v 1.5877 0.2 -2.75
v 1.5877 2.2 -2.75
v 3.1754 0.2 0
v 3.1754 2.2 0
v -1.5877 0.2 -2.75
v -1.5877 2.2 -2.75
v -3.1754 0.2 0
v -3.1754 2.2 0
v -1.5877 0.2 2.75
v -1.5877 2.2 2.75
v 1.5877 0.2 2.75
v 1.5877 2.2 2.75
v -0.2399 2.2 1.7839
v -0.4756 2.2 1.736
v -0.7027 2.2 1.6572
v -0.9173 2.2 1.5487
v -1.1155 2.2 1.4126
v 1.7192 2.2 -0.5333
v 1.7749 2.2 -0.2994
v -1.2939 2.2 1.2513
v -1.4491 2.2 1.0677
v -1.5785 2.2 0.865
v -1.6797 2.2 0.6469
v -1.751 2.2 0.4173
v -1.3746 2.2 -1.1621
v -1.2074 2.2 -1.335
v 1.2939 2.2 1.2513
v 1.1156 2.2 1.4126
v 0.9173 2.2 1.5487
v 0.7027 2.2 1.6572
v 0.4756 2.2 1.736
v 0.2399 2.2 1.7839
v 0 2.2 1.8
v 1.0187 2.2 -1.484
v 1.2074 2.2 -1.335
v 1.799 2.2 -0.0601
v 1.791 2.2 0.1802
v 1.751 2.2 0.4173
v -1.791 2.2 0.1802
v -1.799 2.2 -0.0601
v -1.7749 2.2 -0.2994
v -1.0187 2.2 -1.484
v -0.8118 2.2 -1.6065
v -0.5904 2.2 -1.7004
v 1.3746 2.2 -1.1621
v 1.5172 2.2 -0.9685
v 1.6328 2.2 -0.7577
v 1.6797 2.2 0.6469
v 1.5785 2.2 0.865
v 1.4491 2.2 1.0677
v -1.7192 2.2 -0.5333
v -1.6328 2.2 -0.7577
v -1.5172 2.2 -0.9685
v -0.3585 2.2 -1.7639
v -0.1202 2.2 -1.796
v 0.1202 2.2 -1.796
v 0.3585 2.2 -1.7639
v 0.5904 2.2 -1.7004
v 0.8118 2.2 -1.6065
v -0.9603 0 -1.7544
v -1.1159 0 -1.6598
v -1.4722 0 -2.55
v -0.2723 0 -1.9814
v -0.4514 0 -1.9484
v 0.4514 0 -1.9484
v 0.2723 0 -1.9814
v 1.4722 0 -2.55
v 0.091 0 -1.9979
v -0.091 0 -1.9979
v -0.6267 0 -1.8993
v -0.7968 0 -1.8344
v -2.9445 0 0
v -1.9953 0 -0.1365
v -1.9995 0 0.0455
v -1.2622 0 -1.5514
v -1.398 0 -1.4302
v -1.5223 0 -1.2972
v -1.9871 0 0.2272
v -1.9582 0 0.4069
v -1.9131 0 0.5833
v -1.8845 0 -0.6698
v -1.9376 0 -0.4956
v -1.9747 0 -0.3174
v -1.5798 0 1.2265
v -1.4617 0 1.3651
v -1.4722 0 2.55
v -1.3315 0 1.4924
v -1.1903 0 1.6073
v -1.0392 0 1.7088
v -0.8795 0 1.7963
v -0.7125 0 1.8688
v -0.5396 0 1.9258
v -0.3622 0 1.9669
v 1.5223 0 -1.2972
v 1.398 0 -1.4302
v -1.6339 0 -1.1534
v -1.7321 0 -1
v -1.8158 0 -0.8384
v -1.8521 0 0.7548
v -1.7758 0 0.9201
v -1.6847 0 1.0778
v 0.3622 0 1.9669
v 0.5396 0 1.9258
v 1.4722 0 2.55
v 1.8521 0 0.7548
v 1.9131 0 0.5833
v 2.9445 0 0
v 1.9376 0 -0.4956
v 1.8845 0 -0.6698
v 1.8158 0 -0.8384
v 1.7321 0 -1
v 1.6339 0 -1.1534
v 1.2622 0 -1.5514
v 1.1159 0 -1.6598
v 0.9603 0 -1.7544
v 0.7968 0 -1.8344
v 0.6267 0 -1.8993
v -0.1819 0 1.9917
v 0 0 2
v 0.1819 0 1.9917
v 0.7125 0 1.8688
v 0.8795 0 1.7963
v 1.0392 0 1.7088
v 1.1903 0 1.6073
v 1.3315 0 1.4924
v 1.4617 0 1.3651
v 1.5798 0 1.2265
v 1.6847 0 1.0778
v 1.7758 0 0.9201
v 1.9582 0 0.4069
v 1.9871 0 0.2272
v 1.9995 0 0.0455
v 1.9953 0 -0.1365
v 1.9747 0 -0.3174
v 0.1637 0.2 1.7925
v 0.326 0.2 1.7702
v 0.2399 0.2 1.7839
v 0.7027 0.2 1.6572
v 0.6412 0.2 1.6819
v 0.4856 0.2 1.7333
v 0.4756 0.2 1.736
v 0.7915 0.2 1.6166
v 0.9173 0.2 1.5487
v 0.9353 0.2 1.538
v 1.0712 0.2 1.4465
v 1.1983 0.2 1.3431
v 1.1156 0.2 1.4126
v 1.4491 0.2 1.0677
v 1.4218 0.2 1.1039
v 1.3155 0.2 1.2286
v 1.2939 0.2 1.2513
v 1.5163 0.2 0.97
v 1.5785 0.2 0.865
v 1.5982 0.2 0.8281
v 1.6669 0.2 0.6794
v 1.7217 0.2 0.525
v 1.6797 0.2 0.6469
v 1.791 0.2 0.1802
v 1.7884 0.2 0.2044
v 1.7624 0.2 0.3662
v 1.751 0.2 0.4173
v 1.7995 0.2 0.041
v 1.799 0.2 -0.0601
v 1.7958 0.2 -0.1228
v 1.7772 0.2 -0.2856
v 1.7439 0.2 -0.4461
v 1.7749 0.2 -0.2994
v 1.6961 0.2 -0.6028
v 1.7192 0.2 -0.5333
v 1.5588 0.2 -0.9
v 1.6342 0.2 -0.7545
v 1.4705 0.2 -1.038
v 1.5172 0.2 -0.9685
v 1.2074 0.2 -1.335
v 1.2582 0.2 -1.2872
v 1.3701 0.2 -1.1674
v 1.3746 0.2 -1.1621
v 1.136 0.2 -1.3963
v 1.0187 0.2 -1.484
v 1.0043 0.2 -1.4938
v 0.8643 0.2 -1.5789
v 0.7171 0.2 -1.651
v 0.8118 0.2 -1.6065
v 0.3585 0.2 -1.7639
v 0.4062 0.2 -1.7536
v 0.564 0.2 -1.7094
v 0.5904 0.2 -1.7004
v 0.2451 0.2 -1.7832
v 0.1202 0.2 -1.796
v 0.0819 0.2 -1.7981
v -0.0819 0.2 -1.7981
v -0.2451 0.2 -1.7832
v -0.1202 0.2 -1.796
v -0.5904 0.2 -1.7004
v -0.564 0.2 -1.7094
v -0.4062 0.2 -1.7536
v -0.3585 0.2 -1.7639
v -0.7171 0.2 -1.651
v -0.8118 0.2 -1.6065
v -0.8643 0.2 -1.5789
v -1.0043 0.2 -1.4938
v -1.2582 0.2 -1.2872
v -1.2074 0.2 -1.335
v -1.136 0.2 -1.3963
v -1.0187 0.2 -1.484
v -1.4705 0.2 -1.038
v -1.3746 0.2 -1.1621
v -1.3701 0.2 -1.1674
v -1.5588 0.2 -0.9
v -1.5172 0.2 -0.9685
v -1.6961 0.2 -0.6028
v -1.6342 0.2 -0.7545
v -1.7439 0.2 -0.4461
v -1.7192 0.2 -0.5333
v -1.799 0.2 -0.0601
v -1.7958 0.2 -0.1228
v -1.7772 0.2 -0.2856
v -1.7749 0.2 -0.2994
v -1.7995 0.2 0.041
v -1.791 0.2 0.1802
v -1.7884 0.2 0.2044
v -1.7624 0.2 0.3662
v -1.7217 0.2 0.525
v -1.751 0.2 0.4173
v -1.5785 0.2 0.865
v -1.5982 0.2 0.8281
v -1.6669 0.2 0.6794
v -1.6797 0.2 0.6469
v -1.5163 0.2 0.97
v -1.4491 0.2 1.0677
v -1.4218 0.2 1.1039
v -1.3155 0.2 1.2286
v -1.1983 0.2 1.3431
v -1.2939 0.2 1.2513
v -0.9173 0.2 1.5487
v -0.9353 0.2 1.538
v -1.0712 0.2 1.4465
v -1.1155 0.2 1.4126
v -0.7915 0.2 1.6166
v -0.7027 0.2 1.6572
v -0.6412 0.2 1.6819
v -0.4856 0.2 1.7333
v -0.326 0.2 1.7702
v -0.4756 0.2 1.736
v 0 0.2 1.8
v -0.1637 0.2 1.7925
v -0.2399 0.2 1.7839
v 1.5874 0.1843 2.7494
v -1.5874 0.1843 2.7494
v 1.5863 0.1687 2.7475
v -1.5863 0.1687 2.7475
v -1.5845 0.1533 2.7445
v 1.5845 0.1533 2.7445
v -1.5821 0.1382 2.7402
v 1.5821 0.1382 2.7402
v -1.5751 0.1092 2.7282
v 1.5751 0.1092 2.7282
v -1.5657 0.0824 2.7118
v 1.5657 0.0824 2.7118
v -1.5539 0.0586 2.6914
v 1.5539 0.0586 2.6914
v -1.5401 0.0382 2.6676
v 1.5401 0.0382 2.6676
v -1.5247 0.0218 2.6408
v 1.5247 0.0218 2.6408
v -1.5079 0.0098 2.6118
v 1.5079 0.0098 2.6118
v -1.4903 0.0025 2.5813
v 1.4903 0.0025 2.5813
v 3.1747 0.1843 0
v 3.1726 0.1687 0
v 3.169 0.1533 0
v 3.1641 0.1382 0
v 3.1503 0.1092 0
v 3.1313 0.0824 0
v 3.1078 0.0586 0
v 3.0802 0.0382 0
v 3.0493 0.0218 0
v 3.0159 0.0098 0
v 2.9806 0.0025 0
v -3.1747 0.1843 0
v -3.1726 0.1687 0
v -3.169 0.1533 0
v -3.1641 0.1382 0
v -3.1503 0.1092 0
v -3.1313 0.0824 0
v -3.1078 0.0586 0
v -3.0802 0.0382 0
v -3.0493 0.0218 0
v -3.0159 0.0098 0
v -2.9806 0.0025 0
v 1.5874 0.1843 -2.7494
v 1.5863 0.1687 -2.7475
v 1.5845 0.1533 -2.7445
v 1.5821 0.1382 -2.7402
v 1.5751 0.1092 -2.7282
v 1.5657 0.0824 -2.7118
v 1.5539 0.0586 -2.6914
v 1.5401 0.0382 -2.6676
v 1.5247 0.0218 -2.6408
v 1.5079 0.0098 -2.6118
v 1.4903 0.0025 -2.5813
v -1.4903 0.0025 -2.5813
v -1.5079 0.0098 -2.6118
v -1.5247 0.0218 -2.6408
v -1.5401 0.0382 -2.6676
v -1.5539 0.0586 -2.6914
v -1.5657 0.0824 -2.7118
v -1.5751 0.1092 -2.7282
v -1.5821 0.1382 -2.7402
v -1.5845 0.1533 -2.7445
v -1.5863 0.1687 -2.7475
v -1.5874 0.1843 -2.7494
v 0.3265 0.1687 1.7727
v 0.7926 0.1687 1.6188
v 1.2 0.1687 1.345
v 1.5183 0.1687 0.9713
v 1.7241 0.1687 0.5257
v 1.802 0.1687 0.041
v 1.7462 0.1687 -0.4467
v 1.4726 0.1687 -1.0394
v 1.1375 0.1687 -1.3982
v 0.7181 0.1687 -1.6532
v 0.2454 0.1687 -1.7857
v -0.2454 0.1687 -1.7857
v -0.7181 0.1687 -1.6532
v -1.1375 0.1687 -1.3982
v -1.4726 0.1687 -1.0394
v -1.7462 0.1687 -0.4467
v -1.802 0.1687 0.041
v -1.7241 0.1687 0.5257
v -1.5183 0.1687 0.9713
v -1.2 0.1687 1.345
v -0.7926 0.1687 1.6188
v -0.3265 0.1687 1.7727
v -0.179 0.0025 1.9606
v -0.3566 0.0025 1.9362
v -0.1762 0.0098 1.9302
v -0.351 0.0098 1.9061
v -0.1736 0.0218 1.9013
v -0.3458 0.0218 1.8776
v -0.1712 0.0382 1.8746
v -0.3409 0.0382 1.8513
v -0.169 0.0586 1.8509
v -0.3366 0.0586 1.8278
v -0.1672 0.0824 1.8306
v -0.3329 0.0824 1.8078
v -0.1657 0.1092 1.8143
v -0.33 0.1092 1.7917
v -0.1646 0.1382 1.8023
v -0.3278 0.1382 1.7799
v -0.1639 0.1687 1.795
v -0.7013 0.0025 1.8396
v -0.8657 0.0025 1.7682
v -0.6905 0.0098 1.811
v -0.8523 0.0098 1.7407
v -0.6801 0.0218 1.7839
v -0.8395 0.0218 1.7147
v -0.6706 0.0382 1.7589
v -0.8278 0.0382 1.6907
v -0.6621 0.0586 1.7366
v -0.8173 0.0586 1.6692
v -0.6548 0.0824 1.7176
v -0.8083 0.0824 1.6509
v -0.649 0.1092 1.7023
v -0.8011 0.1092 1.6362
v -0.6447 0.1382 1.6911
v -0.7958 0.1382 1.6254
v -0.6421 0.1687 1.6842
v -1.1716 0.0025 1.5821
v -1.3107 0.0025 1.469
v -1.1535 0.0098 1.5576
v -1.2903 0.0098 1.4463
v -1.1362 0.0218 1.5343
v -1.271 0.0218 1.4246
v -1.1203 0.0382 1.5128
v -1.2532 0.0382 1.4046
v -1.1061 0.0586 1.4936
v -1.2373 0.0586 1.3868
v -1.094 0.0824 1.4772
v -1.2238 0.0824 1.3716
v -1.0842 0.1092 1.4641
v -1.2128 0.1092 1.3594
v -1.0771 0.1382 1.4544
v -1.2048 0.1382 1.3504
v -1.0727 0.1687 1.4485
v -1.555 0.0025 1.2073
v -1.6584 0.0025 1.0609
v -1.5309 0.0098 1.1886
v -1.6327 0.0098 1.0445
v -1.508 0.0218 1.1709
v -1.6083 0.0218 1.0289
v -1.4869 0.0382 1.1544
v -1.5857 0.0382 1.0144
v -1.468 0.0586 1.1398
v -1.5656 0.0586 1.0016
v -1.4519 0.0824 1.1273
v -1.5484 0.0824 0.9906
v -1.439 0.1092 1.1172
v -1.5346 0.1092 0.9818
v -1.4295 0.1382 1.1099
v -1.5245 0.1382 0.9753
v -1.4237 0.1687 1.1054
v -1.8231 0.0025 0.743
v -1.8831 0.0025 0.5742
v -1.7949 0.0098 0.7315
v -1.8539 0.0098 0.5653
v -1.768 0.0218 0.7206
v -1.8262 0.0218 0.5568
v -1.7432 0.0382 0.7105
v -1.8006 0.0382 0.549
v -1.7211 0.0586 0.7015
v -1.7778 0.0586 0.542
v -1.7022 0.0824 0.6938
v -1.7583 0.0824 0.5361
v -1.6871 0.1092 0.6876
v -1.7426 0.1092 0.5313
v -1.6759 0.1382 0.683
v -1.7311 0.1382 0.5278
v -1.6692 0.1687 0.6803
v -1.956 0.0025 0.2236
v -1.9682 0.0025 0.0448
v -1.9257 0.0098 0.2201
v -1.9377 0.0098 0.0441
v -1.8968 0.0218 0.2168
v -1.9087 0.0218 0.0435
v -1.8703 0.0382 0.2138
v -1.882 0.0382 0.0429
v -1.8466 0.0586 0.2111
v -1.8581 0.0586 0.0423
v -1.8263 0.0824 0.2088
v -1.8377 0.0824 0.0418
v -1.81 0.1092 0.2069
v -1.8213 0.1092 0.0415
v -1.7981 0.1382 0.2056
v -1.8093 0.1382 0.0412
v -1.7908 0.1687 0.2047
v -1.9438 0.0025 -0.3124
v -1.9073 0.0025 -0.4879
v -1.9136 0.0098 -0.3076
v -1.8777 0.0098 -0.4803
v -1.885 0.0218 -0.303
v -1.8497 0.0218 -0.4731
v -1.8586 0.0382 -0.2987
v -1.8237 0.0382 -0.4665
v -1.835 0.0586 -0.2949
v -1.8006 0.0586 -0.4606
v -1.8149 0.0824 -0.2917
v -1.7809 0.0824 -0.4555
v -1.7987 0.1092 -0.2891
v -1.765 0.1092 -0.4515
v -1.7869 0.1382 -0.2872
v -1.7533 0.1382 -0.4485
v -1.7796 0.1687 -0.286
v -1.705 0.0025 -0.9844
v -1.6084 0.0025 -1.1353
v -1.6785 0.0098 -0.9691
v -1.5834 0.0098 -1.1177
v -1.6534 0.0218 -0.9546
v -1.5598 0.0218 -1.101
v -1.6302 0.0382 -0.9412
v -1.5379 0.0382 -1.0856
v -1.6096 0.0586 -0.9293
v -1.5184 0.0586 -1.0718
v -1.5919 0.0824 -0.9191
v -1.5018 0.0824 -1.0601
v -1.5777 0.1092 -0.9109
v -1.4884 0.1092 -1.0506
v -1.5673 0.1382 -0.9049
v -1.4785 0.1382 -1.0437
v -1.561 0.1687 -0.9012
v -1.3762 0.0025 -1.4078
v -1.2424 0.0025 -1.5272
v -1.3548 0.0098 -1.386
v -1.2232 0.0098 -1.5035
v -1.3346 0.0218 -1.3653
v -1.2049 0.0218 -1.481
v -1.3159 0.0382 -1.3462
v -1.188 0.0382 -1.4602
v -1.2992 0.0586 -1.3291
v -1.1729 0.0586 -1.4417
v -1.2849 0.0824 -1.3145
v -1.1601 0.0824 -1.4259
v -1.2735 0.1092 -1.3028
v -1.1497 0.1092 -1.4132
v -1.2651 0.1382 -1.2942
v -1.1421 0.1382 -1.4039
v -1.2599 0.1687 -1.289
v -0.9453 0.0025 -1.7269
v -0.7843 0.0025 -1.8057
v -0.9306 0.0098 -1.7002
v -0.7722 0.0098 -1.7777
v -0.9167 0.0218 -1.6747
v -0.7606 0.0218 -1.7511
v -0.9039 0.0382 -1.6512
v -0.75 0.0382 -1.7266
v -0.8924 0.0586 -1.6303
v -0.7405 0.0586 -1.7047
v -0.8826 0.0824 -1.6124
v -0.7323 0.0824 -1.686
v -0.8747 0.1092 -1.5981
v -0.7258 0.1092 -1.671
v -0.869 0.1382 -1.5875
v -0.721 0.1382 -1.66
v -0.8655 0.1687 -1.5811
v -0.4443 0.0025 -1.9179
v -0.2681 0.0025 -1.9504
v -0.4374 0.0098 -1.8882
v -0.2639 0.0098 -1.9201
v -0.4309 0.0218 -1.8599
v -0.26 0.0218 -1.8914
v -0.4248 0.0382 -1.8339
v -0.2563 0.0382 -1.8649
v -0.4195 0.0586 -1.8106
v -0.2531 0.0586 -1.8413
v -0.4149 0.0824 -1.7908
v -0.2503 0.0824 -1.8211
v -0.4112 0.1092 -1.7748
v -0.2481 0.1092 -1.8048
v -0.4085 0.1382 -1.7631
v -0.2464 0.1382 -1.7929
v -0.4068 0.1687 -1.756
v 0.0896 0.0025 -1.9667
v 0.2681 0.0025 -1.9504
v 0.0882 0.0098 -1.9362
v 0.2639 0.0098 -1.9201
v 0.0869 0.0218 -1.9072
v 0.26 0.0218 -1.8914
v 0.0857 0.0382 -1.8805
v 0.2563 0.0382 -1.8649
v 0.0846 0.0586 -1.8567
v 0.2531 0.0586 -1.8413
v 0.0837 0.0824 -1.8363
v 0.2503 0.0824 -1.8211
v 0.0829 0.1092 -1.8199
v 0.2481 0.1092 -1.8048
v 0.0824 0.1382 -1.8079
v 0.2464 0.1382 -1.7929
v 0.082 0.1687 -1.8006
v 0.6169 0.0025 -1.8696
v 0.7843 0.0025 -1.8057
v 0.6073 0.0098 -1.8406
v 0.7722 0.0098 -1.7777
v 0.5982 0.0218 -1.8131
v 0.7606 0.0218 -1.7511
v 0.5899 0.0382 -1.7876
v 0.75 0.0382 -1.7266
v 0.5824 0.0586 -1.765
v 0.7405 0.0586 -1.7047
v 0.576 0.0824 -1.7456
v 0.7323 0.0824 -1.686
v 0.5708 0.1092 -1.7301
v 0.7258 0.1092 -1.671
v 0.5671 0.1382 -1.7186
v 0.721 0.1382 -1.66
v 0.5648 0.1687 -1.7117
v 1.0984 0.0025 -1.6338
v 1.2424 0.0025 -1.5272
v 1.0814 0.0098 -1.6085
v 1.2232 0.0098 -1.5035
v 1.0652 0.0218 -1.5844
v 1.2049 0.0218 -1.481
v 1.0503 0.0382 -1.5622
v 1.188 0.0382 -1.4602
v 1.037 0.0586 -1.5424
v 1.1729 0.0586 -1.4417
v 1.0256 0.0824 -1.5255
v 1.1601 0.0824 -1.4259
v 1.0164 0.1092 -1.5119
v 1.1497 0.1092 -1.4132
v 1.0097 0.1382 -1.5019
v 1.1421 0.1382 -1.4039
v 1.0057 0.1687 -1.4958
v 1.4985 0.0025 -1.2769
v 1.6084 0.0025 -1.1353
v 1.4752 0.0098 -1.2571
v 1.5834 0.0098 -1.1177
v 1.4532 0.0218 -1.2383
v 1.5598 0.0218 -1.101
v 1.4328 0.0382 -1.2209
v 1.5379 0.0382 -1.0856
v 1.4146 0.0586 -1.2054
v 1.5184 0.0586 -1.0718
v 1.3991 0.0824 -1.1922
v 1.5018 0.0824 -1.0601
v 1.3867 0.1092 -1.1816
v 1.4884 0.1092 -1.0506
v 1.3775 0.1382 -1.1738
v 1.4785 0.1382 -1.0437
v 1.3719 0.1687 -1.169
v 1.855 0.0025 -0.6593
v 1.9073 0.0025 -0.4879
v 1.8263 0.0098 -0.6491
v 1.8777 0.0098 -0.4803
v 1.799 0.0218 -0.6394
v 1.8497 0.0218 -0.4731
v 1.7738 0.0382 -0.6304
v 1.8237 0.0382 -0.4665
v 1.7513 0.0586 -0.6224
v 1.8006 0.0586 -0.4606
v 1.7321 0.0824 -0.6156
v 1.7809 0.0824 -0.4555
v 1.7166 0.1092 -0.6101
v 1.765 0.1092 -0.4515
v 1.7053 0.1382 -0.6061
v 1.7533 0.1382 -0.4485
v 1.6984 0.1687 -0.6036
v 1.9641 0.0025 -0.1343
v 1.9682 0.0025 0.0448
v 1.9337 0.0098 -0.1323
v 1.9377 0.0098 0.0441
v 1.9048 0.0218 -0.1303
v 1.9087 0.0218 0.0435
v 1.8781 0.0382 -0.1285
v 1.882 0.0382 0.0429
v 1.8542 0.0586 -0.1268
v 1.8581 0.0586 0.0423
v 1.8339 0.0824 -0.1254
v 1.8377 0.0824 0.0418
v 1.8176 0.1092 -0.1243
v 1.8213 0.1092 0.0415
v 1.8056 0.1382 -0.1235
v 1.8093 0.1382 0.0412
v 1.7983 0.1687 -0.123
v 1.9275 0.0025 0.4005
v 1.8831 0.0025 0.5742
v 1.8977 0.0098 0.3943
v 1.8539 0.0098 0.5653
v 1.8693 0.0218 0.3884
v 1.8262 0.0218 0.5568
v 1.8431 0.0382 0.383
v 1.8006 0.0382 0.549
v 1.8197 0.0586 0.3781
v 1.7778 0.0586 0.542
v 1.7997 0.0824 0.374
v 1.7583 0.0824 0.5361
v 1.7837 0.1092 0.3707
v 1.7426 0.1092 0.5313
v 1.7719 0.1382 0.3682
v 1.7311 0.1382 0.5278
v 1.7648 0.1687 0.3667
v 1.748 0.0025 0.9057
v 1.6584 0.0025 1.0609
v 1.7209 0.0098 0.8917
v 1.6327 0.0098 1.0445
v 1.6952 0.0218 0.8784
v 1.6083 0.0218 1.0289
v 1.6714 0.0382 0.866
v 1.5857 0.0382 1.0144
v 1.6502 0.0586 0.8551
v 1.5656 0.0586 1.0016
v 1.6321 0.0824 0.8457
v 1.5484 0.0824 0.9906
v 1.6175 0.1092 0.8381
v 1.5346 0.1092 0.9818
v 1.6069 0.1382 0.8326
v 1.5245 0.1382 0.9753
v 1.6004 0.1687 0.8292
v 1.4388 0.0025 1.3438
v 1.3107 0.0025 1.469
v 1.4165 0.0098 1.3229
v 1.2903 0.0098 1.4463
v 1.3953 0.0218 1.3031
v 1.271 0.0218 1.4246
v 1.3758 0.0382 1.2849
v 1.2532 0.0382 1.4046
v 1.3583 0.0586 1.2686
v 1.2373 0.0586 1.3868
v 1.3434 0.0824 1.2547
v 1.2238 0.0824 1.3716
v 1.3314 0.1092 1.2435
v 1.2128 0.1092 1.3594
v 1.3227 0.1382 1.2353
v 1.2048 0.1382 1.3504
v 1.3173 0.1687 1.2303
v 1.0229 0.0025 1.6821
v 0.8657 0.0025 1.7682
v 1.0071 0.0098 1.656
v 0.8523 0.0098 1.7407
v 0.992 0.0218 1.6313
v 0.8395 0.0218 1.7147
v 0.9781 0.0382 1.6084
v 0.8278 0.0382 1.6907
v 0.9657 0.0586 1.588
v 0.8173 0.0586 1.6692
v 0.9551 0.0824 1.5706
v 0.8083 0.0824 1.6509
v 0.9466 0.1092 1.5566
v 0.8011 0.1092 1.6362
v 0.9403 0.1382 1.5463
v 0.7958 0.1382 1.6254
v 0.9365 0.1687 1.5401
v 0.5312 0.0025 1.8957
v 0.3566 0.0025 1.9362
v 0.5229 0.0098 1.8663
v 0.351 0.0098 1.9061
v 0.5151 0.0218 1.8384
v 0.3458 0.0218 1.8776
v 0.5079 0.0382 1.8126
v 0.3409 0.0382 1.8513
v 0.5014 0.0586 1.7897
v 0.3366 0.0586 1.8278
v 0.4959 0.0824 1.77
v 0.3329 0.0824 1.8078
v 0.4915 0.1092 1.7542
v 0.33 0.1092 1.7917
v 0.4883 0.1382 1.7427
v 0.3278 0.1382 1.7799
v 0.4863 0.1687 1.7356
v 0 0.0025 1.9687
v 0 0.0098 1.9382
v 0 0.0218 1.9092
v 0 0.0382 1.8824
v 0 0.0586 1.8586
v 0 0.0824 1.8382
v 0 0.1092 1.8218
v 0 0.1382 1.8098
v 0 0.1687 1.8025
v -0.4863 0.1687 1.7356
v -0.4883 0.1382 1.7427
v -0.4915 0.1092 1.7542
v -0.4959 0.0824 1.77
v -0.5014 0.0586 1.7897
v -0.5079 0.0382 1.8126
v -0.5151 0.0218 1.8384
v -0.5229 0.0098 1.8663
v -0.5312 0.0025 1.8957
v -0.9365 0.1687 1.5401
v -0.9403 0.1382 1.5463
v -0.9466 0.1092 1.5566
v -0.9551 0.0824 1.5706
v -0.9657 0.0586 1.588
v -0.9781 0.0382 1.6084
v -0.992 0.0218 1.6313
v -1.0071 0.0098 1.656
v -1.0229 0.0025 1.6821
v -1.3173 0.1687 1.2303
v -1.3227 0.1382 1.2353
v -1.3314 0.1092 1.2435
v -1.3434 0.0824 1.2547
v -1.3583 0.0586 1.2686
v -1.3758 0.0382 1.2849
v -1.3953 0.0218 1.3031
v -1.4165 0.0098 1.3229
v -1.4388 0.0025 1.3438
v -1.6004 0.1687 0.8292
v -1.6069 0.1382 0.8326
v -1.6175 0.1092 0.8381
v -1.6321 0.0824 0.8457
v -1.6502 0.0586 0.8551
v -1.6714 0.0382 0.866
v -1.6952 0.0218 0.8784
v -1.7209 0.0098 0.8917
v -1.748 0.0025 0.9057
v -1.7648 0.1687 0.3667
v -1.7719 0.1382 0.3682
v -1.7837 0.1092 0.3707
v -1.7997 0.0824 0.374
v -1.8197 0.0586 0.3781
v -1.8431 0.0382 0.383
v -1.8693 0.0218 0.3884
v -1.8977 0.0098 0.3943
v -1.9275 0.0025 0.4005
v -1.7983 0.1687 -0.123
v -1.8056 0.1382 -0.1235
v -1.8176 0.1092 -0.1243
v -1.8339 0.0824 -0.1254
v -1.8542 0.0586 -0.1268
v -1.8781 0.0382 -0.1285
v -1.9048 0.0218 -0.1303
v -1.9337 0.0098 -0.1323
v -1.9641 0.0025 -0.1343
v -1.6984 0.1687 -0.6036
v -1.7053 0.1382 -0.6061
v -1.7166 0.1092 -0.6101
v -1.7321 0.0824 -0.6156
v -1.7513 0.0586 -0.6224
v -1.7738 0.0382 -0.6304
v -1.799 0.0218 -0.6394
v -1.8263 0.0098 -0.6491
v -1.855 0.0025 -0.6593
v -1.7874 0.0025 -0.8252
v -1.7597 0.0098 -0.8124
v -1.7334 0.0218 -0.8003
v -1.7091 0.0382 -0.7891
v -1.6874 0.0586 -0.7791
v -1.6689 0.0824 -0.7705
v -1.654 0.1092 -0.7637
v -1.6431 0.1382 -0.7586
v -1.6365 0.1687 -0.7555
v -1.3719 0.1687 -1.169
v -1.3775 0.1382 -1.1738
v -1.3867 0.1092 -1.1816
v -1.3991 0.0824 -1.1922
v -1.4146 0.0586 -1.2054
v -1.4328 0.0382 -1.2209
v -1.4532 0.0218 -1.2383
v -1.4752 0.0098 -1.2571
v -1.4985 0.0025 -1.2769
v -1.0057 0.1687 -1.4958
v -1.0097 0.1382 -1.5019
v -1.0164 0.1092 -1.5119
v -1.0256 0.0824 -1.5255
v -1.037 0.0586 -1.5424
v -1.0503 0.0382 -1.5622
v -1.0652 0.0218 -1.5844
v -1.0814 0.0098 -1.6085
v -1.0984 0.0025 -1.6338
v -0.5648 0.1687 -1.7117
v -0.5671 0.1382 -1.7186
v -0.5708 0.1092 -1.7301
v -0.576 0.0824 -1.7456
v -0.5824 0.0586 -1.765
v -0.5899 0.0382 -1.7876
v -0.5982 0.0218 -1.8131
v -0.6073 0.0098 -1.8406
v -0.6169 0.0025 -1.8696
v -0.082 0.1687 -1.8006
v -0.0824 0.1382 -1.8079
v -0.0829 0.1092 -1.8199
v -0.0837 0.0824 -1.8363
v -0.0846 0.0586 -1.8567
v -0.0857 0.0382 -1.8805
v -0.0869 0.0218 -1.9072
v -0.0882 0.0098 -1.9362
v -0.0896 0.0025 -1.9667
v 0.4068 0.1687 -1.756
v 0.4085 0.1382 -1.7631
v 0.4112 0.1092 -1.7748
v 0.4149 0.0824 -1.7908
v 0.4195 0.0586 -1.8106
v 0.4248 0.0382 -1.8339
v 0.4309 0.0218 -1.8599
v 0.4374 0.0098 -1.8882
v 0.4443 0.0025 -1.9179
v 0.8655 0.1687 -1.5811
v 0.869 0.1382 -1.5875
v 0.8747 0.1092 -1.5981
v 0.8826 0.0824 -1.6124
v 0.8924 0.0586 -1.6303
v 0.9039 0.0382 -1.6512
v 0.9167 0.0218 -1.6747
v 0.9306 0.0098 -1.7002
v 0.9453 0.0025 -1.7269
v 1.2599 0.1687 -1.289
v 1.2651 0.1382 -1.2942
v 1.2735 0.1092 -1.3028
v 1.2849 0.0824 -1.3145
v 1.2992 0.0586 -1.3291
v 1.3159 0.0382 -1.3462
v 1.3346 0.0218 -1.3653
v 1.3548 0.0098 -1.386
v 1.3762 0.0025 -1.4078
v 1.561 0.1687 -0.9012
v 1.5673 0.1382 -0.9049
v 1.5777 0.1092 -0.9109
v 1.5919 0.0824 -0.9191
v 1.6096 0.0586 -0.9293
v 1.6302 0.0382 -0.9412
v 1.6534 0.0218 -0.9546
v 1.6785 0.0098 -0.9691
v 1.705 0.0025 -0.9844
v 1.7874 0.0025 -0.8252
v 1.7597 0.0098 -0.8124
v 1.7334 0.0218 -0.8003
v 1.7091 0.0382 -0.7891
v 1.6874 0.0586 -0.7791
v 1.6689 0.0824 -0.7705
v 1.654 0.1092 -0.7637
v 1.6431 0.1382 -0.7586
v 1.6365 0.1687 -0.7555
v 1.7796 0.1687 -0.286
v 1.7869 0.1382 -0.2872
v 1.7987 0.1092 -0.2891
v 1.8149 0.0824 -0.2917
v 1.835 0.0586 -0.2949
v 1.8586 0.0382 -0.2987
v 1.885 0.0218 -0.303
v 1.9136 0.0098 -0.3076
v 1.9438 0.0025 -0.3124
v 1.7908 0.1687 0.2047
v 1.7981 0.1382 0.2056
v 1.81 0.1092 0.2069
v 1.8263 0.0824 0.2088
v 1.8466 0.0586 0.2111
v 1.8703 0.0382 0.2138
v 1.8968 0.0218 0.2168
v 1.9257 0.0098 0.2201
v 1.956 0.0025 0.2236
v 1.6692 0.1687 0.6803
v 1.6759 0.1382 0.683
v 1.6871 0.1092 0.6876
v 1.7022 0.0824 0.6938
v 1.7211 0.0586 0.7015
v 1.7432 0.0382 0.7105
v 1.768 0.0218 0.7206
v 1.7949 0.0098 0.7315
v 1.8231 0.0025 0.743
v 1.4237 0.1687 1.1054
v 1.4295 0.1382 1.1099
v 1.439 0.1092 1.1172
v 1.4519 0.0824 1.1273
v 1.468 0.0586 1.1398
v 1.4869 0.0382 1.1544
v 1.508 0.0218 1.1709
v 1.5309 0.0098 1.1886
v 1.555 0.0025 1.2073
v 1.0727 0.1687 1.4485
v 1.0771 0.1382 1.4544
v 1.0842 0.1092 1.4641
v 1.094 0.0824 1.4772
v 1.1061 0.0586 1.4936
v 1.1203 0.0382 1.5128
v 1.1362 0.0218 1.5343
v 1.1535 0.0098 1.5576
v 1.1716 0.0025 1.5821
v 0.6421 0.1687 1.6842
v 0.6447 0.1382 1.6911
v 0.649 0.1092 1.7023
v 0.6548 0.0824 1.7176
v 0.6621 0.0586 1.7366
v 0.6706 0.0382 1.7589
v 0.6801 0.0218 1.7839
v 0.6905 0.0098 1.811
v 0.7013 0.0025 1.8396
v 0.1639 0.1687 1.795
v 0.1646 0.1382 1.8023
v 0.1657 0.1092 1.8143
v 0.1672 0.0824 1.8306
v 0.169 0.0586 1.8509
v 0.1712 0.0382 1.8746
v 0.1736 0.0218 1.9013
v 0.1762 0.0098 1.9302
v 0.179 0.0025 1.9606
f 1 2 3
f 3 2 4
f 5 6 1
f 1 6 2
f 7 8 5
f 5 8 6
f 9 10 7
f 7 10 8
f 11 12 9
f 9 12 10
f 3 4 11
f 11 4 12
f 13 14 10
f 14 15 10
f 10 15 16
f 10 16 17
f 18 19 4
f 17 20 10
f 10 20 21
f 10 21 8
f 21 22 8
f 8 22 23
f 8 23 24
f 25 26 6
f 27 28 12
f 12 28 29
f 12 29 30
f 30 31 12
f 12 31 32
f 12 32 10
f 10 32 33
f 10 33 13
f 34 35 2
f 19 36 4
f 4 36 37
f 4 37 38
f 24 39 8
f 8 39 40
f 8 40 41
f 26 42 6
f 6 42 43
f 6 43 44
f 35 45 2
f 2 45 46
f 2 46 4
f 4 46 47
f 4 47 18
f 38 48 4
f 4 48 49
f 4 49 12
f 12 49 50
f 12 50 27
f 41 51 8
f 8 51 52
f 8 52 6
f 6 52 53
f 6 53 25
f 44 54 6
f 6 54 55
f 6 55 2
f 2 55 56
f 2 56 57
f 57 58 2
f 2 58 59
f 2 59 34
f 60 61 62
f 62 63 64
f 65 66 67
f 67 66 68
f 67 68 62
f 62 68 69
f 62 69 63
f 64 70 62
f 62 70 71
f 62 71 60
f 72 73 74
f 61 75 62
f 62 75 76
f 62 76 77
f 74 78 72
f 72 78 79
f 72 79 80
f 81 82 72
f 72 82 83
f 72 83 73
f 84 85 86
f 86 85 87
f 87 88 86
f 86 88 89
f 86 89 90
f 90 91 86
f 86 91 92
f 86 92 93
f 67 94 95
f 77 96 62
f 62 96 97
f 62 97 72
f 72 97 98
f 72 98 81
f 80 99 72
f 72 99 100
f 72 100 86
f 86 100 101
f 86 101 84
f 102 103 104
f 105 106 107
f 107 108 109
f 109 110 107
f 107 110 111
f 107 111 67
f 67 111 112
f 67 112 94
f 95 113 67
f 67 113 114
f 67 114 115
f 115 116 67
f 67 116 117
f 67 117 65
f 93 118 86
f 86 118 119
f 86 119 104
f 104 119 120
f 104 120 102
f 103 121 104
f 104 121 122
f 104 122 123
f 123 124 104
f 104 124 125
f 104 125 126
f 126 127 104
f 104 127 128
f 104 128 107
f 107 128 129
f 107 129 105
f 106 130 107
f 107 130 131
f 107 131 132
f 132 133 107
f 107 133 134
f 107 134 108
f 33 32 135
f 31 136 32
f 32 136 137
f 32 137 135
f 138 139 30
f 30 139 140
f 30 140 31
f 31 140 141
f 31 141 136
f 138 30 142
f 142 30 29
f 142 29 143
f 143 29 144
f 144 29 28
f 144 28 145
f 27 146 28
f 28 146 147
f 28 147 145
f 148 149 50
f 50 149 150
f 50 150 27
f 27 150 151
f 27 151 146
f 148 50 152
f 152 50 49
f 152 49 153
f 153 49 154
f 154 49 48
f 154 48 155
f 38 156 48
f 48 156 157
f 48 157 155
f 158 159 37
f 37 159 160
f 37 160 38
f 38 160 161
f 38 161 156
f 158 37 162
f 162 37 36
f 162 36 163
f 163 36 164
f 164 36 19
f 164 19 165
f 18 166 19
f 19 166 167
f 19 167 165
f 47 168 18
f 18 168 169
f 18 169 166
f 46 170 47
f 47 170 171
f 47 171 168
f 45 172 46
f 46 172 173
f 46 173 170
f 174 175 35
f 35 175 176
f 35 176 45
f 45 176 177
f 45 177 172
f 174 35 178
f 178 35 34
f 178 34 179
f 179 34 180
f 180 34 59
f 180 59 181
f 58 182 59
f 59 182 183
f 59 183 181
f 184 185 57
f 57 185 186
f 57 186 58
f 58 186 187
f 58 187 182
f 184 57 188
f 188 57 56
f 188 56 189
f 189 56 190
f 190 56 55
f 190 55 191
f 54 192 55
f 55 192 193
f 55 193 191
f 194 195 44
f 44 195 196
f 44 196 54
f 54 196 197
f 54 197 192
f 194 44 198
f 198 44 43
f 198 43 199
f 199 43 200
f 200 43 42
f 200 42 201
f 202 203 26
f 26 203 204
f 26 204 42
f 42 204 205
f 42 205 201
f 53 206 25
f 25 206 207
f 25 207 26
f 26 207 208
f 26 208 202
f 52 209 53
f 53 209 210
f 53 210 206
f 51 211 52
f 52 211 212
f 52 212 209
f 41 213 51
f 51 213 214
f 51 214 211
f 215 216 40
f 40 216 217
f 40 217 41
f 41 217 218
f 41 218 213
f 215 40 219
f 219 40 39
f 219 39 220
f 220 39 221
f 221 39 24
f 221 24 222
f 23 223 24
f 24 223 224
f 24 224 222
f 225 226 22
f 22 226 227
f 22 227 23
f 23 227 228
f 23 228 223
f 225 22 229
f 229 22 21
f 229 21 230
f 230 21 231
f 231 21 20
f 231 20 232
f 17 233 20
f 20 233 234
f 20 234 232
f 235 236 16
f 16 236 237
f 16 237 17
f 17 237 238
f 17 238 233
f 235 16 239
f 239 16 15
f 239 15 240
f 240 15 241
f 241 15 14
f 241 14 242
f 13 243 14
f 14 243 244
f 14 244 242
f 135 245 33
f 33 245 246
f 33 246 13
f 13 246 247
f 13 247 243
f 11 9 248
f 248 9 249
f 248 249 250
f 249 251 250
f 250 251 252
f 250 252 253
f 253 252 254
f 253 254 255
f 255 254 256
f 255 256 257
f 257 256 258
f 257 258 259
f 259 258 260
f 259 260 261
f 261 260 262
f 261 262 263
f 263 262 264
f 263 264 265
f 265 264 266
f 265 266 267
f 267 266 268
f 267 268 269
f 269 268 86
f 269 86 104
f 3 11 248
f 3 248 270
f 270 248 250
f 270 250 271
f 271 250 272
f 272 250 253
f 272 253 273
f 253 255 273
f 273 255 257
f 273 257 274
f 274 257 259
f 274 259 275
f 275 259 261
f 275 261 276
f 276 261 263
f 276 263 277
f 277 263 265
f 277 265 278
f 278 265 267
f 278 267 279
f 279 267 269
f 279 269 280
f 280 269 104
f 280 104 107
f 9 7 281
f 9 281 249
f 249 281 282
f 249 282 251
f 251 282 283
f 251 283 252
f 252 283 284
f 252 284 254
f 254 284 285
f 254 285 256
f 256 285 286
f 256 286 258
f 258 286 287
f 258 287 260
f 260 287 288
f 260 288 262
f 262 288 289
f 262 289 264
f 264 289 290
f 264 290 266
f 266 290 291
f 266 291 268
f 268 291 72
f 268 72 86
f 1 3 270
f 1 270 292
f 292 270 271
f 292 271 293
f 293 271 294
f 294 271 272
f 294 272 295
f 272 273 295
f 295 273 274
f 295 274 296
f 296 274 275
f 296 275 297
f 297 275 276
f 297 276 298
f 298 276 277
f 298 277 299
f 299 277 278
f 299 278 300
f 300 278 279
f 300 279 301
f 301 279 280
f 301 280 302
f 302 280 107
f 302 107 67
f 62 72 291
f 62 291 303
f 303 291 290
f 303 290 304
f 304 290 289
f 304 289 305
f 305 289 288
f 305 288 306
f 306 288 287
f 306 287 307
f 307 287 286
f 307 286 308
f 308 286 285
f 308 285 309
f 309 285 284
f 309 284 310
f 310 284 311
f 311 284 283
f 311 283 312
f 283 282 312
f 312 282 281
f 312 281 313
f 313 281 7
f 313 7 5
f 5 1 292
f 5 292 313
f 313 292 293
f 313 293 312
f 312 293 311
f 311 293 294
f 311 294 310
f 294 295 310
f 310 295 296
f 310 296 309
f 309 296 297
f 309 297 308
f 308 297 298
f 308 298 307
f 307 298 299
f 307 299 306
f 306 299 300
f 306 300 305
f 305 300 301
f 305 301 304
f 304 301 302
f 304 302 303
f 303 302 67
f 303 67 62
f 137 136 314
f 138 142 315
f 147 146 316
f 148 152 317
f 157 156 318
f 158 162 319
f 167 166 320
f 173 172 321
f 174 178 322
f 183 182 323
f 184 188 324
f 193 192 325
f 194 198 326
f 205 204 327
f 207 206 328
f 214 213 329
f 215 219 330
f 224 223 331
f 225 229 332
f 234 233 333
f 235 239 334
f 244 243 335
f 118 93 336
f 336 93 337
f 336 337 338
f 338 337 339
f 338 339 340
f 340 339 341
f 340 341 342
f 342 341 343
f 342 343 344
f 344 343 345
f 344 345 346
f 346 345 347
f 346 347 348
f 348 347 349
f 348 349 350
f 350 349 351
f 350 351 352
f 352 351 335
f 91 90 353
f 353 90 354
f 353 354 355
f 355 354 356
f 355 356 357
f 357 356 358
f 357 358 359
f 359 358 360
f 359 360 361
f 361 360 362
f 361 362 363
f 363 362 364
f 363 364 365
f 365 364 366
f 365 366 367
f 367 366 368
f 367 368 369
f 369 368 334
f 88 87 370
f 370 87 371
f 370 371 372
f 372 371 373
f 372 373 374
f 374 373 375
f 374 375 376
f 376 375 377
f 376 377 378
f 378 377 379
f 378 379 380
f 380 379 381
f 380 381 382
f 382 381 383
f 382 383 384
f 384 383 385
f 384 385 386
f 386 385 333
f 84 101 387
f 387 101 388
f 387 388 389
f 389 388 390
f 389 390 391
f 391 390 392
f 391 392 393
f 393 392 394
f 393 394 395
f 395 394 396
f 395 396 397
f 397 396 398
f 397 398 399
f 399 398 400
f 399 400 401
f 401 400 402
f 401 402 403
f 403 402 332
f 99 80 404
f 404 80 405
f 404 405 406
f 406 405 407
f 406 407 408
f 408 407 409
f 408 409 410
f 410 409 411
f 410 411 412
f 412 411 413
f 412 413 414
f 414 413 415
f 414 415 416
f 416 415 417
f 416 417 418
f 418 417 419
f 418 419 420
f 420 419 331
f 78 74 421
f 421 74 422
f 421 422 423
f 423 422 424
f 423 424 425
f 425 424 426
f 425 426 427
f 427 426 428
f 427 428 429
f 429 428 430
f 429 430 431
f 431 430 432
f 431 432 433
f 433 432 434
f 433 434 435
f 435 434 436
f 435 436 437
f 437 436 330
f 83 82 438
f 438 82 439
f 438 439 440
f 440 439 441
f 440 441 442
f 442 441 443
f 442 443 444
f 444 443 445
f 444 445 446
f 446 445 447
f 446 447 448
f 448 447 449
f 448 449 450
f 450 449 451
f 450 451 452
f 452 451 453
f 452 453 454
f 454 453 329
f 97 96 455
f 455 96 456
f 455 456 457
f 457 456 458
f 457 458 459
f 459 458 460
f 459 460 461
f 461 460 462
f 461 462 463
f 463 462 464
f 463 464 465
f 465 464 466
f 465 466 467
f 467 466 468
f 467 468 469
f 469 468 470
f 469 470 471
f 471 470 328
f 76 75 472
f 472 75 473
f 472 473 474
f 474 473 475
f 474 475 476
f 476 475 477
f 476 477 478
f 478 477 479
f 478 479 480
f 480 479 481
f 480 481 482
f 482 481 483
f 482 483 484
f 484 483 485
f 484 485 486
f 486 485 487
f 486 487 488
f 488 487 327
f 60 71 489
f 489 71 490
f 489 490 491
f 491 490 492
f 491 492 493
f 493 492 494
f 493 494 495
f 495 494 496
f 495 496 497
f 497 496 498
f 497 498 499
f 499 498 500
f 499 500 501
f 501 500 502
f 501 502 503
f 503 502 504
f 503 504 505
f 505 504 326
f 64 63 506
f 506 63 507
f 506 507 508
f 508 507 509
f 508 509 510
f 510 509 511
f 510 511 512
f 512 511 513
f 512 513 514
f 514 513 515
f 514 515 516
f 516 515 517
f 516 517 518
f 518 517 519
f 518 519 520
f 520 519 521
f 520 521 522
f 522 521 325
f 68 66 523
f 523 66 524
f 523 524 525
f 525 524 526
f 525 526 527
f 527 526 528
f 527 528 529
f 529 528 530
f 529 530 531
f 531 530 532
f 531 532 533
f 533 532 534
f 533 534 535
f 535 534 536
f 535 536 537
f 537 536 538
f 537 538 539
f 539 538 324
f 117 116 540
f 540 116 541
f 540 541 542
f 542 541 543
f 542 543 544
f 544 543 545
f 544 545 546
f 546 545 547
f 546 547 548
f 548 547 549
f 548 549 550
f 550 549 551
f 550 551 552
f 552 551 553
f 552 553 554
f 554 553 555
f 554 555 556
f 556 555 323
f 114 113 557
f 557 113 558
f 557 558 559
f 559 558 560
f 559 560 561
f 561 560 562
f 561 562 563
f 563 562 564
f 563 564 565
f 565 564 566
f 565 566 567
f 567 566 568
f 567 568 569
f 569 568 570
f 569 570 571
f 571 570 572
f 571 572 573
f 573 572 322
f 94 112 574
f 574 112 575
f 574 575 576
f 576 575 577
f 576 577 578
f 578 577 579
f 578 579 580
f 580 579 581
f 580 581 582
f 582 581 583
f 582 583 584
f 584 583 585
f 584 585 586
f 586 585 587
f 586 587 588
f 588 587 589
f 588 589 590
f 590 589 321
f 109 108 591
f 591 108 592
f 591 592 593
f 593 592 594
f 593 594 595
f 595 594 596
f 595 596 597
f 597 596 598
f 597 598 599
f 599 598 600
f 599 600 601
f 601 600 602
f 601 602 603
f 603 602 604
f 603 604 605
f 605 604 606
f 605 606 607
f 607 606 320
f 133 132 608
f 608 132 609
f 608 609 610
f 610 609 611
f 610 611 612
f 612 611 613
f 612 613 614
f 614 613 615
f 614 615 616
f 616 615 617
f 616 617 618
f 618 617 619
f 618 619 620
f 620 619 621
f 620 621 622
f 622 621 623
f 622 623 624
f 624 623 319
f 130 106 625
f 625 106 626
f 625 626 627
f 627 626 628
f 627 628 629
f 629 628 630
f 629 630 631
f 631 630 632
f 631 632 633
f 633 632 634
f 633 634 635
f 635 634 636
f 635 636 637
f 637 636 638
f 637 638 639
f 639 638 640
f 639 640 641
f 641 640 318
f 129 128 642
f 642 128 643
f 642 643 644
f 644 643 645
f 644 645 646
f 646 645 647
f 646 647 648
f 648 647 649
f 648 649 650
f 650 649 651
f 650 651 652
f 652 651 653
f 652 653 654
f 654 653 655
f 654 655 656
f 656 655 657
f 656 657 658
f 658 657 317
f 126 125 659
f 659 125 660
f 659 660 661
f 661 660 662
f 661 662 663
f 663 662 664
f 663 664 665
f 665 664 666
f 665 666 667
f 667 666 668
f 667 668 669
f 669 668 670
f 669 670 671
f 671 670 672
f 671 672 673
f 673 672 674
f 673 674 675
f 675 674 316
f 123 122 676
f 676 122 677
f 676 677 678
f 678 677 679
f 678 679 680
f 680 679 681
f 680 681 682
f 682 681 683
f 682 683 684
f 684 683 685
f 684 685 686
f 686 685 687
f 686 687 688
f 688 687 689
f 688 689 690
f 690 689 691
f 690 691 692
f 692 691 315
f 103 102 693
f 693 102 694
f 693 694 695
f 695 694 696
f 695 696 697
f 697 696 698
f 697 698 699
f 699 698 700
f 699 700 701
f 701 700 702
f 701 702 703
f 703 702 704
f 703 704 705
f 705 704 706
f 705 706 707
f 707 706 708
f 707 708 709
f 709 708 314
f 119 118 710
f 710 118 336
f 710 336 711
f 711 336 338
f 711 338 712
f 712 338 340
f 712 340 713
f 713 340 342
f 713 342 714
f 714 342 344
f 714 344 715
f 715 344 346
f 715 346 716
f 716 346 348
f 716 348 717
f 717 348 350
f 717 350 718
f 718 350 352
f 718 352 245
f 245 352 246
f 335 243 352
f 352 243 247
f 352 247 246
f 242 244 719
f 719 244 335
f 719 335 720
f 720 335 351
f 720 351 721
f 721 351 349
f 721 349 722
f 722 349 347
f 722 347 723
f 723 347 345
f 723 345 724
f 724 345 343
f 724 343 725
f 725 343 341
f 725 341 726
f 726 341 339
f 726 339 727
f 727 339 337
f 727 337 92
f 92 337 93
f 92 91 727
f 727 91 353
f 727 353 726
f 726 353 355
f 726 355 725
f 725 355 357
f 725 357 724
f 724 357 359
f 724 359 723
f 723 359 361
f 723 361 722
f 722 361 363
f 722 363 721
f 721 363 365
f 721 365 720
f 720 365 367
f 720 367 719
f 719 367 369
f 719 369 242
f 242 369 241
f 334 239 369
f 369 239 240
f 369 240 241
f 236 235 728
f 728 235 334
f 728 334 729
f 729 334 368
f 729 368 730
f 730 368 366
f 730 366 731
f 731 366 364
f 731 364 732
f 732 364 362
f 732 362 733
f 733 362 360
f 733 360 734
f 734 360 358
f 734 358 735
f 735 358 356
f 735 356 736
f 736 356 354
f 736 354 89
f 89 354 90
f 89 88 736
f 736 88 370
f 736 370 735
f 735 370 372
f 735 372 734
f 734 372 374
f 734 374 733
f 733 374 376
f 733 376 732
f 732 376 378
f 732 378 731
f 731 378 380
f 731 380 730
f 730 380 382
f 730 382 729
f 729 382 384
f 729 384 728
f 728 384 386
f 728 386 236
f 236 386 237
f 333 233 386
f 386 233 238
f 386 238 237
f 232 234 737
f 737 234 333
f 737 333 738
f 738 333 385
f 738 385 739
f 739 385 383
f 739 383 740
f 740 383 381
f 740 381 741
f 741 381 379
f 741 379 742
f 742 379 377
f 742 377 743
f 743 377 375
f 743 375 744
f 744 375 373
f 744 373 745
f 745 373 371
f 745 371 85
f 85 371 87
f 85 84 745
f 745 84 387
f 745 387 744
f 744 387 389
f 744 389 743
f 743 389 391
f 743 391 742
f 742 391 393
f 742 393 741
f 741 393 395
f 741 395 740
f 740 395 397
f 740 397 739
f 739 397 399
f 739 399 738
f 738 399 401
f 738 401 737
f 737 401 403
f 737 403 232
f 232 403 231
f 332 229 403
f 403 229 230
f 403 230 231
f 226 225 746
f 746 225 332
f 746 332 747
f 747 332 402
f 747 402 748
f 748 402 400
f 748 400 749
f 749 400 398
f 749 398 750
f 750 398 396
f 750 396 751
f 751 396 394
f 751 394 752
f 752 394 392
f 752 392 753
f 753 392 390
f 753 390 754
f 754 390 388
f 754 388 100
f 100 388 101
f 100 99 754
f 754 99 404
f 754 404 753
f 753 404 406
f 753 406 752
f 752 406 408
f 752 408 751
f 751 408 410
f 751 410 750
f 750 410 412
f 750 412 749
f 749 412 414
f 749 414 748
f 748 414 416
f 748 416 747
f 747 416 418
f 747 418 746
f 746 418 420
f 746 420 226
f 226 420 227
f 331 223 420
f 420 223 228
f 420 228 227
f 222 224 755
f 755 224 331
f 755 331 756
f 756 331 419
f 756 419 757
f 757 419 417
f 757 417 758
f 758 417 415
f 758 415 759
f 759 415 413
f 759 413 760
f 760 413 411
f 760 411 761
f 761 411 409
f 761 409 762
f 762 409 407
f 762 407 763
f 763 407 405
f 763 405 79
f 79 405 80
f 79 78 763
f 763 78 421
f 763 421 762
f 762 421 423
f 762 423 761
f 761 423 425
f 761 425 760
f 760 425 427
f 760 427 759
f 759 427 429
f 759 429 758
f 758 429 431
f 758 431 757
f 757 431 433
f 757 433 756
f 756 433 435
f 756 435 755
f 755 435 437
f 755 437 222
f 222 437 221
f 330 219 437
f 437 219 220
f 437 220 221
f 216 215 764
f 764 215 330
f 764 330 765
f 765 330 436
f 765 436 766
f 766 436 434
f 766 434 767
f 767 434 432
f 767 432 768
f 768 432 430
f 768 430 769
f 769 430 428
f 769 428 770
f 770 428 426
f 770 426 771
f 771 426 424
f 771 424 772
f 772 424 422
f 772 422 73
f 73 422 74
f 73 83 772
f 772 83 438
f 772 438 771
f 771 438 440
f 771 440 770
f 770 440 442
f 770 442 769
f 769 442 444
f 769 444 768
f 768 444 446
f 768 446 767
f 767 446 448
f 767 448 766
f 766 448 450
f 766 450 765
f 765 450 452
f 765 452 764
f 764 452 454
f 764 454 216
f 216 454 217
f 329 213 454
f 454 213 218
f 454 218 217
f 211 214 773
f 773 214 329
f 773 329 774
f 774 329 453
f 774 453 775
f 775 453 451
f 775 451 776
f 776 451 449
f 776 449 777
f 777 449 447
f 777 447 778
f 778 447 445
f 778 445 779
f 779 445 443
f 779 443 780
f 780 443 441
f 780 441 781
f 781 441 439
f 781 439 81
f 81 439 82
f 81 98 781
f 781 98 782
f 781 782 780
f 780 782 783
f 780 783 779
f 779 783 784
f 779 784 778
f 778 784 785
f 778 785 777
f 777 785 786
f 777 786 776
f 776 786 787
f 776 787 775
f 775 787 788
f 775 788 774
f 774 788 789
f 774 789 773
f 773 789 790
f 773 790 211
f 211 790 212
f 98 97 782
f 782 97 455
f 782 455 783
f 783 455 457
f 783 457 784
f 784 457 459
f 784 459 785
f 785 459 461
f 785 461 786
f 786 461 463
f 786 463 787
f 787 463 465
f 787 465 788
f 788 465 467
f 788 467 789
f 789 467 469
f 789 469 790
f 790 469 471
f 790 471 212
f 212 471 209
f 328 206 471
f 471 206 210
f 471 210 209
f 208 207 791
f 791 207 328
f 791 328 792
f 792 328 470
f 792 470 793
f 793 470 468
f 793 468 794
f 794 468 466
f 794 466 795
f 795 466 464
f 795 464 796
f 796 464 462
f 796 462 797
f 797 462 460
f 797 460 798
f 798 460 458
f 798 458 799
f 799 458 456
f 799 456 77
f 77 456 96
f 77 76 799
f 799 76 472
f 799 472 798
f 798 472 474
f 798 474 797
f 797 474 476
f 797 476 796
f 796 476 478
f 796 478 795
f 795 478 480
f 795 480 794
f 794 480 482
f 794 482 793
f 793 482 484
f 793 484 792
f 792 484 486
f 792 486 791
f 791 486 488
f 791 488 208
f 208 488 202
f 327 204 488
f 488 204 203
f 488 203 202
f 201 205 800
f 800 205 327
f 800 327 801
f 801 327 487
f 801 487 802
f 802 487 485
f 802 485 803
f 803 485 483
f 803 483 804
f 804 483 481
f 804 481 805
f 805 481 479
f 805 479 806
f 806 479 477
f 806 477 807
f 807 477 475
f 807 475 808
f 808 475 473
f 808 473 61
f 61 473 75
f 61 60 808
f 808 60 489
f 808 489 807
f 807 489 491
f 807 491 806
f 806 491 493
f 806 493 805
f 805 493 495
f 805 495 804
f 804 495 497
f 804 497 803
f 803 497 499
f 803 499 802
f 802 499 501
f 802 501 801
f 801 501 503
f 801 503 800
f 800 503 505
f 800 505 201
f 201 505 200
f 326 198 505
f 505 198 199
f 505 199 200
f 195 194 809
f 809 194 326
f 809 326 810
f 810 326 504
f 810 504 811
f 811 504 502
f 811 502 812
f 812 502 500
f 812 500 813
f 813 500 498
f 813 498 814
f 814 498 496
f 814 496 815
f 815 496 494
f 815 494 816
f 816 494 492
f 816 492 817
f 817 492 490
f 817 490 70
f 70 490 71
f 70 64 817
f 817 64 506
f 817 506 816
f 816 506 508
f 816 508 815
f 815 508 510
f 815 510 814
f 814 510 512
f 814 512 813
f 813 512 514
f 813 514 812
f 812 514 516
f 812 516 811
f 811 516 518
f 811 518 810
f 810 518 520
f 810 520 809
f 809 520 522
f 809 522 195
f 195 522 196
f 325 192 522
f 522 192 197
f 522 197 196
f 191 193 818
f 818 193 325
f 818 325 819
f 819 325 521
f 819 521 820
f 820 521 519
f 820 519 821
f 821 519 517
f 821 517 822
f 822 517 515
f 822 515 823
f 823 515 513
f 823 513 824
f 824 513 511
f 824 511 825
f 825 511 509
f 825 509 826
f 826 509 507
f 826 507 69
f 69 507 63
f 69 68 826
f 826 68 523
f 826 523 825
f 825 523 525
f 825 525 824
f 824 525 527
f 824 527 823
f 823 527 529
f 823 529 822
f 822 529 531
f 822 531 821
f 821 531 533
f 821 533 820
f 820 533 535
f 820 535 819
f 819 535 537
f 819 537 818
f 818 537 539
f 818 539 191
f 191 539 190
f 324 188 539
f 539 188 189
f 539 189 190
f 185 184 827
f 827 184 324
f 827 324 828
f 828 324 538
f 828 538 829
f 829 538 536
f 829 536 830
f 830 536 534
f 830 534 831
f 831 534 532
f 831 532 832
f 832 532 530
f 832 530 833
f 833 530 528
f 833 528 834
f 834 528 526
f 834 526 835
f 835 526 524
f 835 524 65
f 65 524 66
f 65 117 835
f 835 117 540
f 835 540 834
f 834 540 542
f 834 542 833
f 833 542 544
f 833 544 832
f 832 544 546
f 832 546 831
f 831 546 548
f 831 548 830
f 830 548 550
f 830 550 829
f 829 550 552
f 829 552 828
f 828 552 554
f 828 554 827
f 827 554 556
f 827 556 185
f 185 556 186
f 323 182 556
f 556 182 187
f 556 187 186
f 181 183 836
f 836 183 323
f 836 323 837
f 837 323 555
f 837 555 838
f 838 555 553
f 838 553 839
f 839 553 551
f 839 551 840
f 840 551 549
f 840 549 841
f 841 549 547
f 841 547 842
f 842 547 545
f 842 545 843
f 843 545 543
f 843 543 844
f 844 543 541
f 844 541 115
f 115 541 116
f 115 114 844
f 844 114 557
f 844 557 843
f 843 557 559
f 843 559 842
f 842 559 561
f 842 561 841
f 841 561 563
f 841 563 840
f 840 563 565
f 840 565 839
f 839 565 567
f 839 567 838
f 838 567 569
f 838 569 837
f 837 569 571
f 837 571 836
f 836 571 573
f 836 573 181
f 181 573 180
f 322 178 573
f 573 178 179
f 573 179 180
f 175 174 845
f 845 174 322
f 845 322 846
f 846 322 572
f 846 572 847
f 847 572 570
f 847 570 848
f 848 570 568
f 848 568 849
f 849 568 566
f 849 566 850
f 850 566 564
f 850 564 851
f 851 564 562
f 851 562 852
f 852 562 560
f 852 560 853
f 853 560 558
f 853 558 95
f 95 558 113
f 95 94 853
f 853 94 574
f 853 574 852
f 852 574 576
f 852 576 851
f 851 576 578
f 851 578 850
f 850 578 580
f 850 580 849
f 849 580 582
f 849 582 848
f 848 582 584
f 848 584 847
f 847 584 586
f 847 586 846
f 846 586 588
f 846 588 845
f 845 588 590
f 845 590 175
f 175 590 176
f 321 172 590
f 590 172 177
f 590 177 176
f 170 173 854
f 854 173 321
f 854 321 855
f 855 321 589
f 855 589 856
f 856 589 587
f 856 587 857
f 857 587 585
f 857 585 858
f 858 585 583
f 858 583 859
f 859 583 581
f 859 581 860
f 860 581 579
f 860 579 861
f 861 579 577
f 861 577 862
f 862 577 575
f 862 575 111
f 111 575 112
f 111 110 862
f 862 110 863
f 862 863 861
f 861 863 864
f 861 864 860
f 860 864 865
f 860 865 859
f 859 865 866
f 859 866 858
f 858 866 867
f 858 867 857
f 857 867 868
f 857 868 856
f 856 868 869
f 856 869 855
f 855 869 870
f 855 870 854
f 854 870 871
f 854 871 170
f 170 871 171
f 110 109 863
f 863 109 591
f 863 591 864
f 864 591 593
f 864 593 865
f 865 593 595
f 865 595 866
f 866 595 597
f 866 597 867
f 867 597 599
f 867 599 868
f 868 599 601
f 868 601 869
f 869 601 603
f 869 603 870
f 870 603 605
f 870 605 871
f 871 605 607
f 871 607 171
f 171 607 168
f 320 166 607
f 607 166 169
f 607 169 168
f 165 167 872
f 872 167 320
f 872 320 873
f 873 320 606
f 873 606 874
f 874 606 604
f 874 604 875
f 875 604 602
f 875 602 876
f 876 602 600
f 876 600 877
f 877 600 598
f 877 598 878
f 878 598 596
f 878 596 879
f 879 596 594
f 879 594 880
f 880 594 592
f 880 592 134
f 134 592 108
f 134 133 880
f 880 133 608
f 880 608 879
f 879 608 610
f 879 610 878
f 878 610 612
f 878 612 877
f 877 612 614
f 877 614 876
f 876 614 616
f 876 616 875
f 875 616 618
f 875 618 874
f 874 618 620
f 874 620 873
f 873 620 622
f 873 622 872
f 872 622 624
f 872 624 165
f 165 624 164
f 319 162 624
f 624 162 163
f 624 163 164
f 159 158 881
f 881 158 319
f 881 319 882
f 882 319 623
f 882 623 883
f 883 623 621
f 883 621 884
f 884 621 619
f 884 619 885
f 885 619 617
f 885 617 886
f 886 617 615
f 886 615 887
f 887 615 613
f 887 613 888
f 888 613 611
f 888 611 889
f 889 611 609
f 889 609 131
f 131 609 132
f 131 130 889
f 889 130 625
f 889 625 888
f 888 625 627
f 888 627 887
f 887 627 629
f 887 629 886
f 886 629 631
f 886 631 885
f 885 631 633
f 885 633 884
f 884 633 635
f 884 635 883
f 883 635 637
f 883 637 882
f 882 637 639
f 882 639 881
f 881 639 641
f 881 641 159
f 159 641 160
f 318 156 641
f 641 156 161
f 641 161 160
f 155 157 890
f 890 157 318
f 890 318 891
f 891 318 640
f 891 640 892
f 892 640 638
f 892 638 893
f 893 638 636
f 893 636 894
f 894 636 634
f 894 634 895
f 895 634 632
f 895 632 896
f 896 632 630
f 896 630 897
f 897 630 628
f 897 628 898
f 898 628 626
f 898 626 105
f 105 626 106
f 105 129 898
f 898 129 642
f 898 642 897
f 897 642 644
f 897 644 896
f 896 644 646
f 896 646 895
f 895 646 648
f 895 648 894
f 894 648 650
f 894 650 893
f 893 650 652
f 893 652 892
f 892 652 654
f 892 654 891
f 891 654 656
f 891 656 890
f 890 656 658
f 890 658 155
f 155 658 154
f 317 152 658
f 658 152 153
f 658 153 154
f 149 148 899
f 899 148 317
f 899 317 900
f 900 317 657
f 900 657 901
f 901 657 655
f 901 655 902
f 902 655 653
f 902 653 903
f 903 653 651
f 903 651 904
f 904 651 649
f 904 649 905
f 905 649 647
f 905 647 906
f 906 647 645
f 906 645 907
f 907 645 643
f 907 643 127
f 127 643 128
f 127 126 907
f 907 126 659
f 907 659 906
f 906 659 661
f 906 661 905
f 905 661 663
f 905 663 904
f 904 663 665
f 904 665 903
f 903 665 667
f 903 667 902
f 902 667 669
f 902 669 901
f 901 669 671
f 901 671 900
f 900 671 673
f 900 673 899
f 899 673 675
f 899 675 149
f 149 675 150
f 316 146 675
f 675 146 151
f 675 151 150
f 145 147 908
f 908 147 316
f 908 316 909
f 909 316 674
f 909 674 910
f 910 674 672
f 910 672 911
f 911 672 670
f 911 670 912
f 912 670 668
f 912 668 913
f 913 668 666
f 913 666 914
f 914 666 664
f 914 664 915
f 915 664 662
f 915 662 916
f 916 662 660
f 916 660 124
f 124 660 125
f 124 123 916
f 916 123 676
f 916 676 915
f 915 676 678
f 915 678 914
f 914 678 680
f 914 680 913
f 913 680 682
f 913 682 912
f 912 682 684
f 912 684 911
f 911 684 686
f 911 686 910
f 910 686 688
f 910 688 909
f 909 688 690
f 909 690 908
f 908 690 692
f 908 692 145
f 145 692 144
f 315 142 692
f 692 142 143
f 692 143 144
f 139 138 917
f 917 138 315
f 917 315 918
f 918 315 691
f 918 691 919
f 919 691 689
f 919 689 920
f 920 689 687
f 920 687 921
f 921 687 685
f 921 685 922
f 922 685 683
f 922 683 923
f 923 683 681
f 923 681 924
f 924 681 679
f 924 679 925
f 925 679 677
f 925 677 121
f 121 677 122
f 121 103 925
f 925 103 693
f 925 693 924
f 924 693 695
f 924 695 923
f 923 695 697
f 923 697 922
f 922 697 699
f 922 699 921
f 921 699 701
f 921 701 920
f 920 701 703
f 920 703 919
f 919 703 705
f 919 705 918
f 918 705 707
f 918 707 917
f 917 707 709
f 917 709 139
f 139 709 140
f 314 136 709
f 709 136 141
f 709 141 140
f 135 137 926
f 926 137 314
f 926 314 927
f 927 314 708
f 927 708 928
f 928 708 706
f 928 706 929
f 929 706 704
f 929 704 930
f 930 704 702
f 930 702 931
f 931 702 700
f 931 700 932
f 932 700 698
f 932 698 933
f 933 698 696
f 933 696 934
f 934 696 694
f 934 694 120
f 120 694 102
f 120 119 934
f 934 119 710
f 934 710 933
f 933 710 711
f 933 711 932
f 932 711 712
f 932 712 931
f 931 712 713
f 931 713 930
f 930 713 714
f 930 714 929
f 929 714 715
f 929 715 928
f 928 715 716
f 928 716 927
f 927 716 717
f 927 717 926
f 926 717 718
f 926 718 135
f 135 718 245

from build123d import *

# Parameters (mm, degrees)
BOSS_EXTRU_1_DEPTH   = 2.2
D_GAGEMENT_M31_D     = 3.6
D_GAGEMENT_M31_DEPTH = 2.2
D_GAGEMENT_M31_TIP   = 1.081549114
CONG_1_R             = 0.2


with BuildPart() as part:
    # Esquisse1 → Boss.-Extru.1 (new body)
    with BuildSketch(Plane(origin=(0, 0, 0), x_dir=(1, 0, 0), z_dir=(0, 1, 0))):
        Polygon((1.58771324, 2.75), (-1.58771324, 2.75), (-3.175426481, 0), (-1.58771324, -2.75), (1.58771324, -2.75), (3.175426481, 0), align=None)
    extrude(amount=BOSS_EXTRU_1_DEPTH)

    # Dégagement M31
    with Locations(Plane(origin=(0, 2.2, 0), x_dir=(1, 0, 0), z_dir=(0, 1, 0))):
        with Locations((0, 0)):
            Hole(D_GAGEMENT_M31_D / 2, depth=D_GAGEMENT_M31_DEPTH)
            with Locations((0, 0, -(D_GAGEMENT_M31_DEPTH + D_GAGEMENT_M31_TIP / 2))):  # 118° drill point
                Cone(0, D_GAGEMENT_M31_D / 2, D_GAGEMENT_M31_TIP, mode=Mode.SUBTRACT)

    # Congé1
    cong_1_edges = [part.edges().sort_by_distance(p)[0] for p in [
        (1.8, 0, 0),
        (2.38156986, 0, 1.375),
        (0, 0, 2.75),
        (-2.38156986, 0, 1.375),
        (-2.38156986, 0, -1.375),
        (0, 0, -2.75),
        (2.38156986, 0, -1.375),
    ]]
    fillet(cong_1_edges, radius=CONG_1_R)


solid = part.part
